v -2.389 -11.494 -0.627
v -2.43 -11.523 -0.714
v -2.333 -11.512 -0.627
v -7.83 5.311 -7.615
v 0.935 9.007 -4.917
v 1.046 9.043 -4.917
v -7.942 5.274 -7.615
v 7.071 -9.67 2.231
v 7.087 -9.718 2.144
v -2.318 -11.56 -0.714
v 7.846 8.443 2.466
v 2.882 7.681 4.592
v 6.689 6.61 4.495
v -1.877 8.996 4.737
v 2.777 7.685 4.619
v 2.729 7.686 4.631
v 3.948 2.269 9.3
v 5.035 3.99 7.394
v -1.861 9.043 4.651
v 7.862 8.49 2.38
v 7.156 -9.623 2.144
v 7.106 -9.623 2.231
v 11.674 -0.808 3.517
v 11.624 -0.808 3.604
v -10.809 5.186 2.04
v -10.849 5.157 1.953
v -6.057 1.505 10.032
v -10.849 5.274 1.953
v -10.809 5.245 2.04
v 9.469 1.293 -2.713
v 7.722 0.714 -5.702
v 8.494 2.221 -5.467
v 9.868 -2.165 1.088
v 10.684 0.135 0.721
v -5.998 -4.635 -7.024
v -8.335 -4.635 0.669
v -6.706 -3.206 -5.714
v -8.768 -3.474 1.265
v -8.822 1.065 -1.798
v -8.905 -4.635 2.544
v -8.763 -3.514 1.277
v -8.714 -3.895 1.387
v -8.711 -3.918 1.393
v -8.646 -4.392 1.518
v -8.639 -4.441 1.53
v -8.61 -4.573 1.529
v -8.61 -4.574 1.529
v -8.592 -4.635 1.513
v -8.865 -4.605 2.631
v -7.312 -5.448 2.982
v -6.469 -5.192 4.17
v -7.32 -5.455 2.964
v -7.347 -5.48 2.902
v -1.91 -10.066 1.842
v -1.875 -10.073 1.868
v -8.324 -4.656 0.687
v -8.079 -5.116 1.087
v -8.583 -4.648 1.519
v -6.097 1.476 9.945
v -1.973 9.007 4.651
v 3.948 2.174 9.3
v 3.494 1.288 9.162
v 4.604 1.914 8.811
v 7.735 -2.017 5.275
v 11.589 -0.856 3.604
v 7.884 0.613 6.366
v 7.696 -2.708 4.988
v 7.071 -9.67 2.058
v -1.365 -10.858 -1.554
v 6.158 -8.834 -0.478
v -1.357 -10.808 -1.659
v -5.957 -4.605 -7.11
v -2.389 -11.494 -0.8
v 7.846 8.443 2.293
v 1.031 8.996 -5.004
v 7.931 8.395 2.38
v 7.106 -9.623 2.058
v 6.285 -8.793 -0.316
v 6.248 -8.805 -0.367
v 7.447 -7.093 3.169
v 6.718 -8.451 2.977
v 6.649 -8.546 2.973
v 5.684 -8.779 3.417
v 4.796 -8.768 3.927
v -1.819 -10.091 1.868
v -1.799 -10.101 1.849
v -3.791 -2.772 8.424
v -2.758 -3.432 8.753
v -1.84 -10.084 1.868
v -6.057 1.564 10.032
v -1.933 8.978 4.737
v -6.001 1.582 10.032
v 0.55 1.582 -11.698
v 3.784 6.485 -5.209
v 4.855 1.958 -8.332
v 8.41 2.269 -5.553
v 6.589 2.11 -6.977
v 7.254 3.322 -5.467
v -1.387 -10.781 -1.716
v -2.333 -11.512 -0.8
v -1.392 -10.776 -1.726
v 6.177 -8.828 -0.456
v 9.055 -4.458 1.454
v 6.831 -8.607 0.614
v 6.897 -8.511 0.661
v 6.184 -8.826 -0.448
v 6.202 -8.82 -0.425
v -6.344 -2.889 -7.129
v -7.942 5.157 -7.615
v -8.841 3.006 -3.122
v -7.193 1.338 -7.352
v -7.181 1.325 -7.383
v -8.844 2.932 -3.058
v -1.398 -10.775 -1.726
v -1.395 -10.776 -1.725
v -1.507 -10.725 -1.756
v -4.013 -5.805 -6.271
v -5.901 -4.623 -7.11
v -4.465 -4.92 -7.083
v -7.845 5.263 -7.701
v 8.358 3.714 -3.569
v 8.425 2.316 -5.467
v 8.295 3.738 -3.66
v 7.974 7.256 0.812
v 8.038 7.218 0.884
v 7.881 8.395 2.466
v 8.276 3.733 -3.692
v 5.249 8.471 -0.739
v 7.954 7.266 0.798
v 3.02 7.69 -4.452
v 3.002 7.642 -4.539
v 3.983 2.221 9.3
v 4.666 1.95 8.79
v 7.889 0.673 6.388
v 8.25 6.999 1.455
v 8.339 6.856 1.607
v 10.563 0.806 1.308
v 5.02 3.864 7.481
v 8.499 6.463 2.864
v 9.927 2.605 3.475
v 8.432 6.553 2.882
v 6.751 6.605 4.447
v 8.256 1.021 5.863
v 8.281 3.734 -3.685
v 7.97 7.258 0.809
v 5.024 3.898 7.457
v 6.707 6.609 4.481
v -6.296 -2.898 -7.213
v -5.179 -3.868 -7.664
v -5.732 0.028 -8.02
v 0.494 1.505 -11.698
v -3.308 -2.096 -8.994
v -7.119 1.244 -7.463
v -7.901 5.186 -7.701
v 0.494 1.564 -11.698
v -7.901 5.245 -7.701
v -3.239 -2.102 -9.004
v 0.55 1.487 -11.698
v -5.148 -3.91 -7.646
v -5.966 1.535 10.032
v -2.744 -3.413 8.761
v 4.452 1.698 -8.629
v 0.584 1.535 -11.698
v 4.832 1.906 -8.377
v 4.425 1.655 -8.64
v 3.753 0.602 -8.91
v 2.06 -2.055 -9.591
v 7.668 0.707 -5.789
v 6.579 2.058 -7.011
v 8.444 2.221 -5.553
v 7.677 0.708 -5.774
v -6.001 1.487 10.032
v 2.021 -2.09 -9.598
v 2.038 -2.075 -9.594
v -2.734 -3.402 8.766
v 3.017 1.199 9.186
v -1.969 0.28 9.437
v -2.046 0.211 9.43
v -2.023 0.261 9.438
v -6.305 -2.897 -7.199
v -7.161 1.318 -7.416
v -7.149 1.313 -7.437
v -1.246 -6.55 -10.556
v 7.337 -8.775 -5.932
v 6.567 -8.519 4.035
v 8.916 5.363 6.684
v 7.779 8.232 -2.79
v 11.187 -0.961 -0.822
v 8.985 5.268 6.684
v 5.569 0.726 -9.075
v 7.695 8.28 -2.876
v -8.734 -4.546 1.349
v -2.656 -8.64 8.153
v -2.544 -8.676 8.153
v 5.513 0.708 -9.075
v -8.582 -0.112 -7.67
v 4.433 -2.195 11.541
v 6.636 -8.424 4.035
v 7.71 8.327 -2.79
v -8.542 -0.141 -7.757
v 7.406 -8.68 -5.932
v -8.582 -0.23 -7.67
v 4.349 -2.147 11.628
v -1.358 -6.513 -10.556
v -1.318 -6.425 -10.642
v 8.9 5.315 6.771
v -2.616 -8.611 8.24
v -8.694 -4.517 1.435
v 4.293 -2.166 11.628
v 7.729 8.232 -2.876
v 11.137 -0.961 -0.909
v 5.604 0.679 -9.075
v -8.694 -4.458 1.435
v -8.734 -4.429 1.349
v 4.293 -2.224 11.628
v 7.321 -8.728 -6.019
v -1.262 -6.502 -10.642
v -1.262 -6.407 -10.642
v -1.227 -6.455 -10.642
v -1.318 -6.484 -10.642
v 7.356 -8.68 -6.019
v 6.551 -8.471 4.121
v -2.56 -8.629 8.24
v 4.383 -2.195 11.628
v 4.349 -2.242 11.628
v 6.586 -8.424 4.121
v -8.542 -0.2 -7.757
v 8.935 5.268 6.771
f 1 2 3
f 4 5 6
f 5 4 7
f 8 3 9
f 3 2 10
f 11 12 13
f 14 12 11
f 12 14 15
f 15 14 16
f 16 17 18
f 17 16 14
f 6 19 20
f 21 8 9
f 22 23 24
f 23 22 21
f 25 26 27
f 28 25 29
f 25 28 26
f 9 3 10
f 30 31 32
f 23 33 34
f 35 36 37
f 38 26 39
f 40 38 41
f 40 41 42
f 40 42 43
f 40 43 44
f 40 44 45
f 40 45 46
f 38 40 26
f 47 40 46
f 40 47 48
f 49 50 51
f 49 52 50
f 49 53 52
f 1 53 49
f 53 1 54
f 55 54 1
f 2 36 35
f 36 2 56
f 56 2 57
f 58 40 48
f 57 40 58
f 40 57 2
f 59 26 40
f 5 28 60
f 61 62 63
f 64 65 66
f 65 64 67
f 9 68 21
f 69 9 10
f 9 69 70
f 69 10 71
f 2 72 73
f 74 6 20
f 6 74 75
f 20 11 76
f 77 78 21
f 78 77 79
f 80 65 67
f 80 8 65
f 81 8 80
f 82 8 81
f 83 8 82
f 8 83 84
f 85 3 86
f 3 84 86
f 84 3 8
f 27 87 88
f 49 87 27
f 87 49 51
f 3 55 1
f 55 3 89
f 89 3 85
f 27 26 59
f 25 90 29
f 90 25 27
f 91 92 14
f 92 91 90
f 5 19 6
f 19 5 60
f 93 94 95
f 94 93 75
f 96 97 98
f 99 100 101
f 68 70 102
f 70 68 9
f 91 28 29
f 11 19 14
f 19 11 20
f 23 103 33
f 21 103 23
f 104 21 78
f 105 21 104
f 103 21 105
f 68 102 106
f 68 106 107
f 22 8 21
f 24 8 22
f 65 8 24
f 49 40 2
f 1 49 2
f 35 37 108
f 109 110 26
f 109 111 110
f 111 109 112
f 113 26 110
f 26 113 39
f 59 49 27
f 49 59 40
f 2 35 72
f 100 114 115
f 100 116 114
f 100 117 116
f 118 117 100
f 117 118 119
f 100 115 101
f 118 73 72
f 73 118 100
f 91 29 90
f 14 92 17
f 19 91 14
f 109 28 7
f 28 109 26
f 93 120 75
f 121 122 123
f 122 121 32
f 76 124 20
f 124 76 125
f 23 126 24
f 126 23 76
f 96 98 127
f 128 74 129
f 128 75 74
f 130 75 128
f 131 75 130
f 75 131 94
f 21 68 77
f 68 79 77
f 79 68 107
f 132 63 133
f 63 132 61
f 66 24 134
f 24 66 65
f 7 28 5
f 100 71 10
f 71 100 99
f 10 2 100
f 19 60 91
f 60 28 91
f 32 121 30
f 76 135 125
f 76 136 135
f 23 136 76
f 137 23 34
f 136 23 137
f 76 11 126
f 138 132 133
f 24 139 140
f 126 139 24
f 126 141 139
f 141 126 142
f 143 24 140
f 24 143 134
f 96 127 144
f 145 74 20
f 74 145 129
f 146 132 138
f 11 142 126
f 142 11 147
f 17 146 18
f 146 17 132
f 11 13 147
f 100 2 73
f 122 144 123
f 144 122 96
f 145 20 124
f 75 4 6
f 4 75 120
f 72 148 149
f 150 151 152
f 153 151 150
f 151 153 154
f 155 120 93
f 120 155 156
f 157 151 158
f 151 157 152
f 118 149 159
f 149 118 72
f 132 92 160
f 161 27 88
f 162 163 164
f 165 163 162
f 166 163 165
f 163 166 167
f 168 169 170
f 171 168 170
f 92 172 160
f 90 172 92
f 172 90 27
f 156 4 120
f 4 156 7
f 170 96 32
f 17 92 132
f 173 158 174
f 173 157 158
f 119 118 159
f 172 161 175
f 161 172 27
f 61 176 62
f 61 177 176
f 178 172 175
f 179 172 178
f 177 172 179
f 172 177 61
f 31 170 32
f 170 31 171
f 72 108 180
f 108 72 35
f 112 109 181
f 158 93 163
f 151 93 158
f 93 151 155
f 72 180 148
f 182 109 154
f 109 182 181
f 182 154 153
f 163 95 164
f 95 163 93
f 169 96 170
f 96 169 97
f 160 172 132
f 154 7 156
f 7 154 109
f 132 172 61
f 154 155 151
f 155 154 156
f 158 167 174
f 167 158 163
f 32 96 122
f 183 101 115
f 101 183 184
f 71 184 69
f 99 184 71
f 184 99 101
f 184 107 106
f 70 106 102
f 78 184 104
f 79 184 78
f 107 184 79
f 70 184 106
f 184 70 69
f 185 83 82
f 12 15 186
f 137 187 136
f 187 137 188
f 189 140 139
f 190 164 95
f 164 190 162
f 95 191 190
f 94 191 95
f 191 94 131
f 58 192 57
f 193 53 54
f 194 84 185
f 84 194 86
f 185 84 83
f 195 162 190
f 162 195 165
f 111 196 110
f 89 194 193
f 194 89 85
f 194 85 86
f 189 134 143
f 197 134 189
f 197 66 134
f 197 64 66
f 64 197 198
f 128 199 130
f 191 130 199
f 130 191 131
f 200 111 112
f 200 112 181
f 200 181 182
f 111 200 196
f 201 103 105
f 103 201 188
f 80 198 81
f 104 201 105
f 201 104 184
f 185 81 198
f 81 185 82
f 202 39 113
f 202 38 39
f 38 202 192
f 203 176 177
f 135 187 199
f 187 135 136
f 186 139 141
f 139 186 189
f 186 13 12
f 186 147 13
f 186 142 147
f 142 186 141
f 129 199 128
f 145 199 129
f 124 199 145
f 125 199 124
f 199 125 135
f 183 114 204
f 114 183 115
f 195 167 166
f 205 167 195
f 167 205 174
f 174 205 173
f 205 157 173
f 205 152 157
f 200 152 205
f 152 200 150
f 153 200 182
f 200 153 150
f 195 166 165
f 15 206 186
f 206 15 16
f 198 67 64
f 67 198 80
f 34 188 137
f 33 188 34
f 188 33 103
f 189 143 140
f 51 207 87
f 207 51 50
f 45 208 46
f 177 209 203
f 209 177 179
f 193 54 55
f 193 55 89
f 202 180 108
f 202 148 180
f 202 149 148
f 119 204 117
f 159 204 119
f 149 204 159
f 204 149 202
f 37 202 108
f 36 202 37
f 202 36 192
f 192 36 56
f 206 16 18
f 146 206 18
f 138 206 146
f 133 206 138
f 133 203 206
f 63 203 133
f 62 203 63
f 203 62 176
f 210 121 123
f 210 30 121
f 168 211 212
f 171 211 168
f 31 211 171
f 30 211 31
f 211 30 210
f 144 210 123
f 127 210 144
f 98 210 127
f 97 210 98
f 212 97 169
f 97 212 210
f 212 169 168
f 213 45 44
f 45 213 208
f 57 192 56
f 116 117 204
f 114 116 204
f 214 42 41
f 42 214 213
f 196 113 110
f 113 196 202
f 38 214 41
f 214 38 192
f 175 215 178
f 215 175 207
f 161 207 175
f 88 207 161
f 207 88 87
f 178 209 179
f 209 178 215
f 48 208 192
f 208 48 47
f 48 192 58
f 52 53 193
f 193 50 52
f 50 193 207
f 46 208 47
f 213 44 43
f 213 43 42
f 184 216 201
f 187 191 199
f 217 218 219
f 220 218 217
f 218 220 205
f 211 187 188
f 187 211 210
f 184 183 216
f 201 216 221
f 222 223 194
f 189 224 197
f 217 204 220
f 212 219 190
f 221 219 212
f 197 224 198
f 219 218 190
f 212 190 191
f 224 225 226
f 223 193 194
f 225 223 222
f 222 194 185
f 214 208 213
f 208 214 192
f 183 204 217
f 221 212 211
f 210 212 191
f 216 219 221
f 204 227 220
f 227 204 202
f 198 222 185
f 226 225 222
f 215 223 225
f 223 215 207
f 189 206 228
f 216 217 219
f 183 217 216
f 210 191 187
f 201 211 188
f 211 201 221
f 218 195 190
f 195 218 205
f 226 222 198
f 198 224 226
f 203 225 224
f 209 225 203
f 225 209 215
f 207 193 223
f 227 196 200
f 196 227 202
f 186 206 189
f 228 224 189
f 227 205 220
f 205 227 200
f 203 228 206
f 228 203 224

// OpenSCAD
// Auto-generated OpenSCAD file

    inner_points = 10*[[0.6535941979567257, -0.8423780651967159, 0.4034791044417876], [-0.45475527077662015, 0.12173810180083354, 0.8462002987147633], [1.1087469983058469, -0.09610029003660843, -0.0822218432991377], [0.00039752957250104026, 0.868015876960941, 0.360499350973838], [-0.14294424118494742, -1.0771335563343367, -0.15367112157493162], [-0.8653432213136825, -0.44874282271436344, 0.13488528436594405], [0.5553795083440791, 0.06785224566500801, -0.8988637397815697], [-0.16701947178465576, 0.6962429792849811, -0.610307333840694], [0.43334931670482335, -0.2194919314996312, 1.1541488432285814], [0.8885021170539444, 0.5267858436604762, 0.6684478954876559], [-0.12771221953520462, -0.6454687055329743, -1.0555765723285564], [-0.8501111996639396, -0.017077971913001103, -0.7670201663876808], [-0.2575336137198885, -0.8581337755119616, 0.8153017220599147], [0.7679103041582885, 0.8232048980029523, -0.2789661422409663], [0.7305959386426744, -0.8680335150915568, -0.5932217181835514], [-0.896944614521451, 0.5477096273154356, 0.05688613836460294]];

    outer_points = 10*[[-0.18922208692498615, 0.89482467771394, 0.46507464775708884], [-0.8824363020490245, -0.45759366314983685, 0.25441077470036644], [0.10154238982675173, 0.89482467771394, -0.4917200110173464], [-0.5916718252972866, -0.45759366314983685, -0.7023838840740688], [0.3933037355504648, 0.22212347338616487, 0.9212947216745572], [-0.05851877724295007, -0.6593544879502681, 0.7839884195205397], [0.8394126894652227, 0.22212347338616487, -0.5466791832035597], [0.38759017667180784, -0.6593544879502681, -0.6839854853575772], [-1.0768579152163809, 0.5215433861787323, 0.19532714781824523], [-0.7860934384646431, 0.5215433861787323, -0.76146751095619], [1.1573869332372195, -0.08080440551051582, 0.35172333264598116], [0.7055644204438046, -0.9622823668469488, 0.21441703049196367], [-0.6016466494277248, 0.15347458298643346, 0.9945139901674744], [0.053435916232416114, 0.15347458298643346, -1.161112126481694], [0.7830758127303129, 0.8394954849805947, 0.23797230352134466], [-0.23486507953500407, -1.1464446509534616, -0.07137416720712511]];

    // Convex hull for inner set (I)
    module inner_hull() {
        hull() {
            for (p = inner_points) {
                translate(p) sphere(r=0.1);
            }
        }
    }

    // Convex hull for outer set (O) minus inner hull (O \ I)
    module outer_minus_inner() {
        difference() {
            hull() {
                for (p = outer_points) {
                    translate(p) sphere(r=0.1);
                }
            }
            inner_hull(); // Subtract inner hull
        }
    }

    // Convex hull for outer set (O) minus all translated inner hulls
    module outer_minus_AllTranslationInner() {
        difference() {
            hull() {
                for (p = outer_points) {
                    translate(p) sphere(r=0.1);
                }
            }
            hull() {
                translate([0,0,50]) inner_hull();
                translate([0,0,-50]) inner_hull();
            }; // Subtract translated inner hulls
        }
    }

    // Difference between outer_minus_inner and outer_minus_AllTranslationInner
    module outer_minus_inner_diff() {
        difference() {
            // Outer minus inner
            difference() {
                hull() {
                    for (p = outer_points) {
                        translate(p) sphere(r=0.1);
                    }
                }
                inner_hull();
            }

            // Subtract Outer minus AllTranslationInner
            difference() {
                hull() {
                    for (p = outer_points) {
                        translate(p) sphere(r=0.1);
                    }
                }
                hull() {
                    translate([0,0,50]) inner_hull();
                    translate([0,0,-50]) inner_hull();
                };
            }
        }
    }

    // Rendering all with colors applied
    color([1, 0, 0, 0.5]) inner_hull(); // Transparent red
    color([0, 1, 0, 1]) outer_minus_AllTranslationInner(); // Opaque green
    color([1, 1, 0, 1]) outer_minus_inner_diff(); // Opaque yellow
    
